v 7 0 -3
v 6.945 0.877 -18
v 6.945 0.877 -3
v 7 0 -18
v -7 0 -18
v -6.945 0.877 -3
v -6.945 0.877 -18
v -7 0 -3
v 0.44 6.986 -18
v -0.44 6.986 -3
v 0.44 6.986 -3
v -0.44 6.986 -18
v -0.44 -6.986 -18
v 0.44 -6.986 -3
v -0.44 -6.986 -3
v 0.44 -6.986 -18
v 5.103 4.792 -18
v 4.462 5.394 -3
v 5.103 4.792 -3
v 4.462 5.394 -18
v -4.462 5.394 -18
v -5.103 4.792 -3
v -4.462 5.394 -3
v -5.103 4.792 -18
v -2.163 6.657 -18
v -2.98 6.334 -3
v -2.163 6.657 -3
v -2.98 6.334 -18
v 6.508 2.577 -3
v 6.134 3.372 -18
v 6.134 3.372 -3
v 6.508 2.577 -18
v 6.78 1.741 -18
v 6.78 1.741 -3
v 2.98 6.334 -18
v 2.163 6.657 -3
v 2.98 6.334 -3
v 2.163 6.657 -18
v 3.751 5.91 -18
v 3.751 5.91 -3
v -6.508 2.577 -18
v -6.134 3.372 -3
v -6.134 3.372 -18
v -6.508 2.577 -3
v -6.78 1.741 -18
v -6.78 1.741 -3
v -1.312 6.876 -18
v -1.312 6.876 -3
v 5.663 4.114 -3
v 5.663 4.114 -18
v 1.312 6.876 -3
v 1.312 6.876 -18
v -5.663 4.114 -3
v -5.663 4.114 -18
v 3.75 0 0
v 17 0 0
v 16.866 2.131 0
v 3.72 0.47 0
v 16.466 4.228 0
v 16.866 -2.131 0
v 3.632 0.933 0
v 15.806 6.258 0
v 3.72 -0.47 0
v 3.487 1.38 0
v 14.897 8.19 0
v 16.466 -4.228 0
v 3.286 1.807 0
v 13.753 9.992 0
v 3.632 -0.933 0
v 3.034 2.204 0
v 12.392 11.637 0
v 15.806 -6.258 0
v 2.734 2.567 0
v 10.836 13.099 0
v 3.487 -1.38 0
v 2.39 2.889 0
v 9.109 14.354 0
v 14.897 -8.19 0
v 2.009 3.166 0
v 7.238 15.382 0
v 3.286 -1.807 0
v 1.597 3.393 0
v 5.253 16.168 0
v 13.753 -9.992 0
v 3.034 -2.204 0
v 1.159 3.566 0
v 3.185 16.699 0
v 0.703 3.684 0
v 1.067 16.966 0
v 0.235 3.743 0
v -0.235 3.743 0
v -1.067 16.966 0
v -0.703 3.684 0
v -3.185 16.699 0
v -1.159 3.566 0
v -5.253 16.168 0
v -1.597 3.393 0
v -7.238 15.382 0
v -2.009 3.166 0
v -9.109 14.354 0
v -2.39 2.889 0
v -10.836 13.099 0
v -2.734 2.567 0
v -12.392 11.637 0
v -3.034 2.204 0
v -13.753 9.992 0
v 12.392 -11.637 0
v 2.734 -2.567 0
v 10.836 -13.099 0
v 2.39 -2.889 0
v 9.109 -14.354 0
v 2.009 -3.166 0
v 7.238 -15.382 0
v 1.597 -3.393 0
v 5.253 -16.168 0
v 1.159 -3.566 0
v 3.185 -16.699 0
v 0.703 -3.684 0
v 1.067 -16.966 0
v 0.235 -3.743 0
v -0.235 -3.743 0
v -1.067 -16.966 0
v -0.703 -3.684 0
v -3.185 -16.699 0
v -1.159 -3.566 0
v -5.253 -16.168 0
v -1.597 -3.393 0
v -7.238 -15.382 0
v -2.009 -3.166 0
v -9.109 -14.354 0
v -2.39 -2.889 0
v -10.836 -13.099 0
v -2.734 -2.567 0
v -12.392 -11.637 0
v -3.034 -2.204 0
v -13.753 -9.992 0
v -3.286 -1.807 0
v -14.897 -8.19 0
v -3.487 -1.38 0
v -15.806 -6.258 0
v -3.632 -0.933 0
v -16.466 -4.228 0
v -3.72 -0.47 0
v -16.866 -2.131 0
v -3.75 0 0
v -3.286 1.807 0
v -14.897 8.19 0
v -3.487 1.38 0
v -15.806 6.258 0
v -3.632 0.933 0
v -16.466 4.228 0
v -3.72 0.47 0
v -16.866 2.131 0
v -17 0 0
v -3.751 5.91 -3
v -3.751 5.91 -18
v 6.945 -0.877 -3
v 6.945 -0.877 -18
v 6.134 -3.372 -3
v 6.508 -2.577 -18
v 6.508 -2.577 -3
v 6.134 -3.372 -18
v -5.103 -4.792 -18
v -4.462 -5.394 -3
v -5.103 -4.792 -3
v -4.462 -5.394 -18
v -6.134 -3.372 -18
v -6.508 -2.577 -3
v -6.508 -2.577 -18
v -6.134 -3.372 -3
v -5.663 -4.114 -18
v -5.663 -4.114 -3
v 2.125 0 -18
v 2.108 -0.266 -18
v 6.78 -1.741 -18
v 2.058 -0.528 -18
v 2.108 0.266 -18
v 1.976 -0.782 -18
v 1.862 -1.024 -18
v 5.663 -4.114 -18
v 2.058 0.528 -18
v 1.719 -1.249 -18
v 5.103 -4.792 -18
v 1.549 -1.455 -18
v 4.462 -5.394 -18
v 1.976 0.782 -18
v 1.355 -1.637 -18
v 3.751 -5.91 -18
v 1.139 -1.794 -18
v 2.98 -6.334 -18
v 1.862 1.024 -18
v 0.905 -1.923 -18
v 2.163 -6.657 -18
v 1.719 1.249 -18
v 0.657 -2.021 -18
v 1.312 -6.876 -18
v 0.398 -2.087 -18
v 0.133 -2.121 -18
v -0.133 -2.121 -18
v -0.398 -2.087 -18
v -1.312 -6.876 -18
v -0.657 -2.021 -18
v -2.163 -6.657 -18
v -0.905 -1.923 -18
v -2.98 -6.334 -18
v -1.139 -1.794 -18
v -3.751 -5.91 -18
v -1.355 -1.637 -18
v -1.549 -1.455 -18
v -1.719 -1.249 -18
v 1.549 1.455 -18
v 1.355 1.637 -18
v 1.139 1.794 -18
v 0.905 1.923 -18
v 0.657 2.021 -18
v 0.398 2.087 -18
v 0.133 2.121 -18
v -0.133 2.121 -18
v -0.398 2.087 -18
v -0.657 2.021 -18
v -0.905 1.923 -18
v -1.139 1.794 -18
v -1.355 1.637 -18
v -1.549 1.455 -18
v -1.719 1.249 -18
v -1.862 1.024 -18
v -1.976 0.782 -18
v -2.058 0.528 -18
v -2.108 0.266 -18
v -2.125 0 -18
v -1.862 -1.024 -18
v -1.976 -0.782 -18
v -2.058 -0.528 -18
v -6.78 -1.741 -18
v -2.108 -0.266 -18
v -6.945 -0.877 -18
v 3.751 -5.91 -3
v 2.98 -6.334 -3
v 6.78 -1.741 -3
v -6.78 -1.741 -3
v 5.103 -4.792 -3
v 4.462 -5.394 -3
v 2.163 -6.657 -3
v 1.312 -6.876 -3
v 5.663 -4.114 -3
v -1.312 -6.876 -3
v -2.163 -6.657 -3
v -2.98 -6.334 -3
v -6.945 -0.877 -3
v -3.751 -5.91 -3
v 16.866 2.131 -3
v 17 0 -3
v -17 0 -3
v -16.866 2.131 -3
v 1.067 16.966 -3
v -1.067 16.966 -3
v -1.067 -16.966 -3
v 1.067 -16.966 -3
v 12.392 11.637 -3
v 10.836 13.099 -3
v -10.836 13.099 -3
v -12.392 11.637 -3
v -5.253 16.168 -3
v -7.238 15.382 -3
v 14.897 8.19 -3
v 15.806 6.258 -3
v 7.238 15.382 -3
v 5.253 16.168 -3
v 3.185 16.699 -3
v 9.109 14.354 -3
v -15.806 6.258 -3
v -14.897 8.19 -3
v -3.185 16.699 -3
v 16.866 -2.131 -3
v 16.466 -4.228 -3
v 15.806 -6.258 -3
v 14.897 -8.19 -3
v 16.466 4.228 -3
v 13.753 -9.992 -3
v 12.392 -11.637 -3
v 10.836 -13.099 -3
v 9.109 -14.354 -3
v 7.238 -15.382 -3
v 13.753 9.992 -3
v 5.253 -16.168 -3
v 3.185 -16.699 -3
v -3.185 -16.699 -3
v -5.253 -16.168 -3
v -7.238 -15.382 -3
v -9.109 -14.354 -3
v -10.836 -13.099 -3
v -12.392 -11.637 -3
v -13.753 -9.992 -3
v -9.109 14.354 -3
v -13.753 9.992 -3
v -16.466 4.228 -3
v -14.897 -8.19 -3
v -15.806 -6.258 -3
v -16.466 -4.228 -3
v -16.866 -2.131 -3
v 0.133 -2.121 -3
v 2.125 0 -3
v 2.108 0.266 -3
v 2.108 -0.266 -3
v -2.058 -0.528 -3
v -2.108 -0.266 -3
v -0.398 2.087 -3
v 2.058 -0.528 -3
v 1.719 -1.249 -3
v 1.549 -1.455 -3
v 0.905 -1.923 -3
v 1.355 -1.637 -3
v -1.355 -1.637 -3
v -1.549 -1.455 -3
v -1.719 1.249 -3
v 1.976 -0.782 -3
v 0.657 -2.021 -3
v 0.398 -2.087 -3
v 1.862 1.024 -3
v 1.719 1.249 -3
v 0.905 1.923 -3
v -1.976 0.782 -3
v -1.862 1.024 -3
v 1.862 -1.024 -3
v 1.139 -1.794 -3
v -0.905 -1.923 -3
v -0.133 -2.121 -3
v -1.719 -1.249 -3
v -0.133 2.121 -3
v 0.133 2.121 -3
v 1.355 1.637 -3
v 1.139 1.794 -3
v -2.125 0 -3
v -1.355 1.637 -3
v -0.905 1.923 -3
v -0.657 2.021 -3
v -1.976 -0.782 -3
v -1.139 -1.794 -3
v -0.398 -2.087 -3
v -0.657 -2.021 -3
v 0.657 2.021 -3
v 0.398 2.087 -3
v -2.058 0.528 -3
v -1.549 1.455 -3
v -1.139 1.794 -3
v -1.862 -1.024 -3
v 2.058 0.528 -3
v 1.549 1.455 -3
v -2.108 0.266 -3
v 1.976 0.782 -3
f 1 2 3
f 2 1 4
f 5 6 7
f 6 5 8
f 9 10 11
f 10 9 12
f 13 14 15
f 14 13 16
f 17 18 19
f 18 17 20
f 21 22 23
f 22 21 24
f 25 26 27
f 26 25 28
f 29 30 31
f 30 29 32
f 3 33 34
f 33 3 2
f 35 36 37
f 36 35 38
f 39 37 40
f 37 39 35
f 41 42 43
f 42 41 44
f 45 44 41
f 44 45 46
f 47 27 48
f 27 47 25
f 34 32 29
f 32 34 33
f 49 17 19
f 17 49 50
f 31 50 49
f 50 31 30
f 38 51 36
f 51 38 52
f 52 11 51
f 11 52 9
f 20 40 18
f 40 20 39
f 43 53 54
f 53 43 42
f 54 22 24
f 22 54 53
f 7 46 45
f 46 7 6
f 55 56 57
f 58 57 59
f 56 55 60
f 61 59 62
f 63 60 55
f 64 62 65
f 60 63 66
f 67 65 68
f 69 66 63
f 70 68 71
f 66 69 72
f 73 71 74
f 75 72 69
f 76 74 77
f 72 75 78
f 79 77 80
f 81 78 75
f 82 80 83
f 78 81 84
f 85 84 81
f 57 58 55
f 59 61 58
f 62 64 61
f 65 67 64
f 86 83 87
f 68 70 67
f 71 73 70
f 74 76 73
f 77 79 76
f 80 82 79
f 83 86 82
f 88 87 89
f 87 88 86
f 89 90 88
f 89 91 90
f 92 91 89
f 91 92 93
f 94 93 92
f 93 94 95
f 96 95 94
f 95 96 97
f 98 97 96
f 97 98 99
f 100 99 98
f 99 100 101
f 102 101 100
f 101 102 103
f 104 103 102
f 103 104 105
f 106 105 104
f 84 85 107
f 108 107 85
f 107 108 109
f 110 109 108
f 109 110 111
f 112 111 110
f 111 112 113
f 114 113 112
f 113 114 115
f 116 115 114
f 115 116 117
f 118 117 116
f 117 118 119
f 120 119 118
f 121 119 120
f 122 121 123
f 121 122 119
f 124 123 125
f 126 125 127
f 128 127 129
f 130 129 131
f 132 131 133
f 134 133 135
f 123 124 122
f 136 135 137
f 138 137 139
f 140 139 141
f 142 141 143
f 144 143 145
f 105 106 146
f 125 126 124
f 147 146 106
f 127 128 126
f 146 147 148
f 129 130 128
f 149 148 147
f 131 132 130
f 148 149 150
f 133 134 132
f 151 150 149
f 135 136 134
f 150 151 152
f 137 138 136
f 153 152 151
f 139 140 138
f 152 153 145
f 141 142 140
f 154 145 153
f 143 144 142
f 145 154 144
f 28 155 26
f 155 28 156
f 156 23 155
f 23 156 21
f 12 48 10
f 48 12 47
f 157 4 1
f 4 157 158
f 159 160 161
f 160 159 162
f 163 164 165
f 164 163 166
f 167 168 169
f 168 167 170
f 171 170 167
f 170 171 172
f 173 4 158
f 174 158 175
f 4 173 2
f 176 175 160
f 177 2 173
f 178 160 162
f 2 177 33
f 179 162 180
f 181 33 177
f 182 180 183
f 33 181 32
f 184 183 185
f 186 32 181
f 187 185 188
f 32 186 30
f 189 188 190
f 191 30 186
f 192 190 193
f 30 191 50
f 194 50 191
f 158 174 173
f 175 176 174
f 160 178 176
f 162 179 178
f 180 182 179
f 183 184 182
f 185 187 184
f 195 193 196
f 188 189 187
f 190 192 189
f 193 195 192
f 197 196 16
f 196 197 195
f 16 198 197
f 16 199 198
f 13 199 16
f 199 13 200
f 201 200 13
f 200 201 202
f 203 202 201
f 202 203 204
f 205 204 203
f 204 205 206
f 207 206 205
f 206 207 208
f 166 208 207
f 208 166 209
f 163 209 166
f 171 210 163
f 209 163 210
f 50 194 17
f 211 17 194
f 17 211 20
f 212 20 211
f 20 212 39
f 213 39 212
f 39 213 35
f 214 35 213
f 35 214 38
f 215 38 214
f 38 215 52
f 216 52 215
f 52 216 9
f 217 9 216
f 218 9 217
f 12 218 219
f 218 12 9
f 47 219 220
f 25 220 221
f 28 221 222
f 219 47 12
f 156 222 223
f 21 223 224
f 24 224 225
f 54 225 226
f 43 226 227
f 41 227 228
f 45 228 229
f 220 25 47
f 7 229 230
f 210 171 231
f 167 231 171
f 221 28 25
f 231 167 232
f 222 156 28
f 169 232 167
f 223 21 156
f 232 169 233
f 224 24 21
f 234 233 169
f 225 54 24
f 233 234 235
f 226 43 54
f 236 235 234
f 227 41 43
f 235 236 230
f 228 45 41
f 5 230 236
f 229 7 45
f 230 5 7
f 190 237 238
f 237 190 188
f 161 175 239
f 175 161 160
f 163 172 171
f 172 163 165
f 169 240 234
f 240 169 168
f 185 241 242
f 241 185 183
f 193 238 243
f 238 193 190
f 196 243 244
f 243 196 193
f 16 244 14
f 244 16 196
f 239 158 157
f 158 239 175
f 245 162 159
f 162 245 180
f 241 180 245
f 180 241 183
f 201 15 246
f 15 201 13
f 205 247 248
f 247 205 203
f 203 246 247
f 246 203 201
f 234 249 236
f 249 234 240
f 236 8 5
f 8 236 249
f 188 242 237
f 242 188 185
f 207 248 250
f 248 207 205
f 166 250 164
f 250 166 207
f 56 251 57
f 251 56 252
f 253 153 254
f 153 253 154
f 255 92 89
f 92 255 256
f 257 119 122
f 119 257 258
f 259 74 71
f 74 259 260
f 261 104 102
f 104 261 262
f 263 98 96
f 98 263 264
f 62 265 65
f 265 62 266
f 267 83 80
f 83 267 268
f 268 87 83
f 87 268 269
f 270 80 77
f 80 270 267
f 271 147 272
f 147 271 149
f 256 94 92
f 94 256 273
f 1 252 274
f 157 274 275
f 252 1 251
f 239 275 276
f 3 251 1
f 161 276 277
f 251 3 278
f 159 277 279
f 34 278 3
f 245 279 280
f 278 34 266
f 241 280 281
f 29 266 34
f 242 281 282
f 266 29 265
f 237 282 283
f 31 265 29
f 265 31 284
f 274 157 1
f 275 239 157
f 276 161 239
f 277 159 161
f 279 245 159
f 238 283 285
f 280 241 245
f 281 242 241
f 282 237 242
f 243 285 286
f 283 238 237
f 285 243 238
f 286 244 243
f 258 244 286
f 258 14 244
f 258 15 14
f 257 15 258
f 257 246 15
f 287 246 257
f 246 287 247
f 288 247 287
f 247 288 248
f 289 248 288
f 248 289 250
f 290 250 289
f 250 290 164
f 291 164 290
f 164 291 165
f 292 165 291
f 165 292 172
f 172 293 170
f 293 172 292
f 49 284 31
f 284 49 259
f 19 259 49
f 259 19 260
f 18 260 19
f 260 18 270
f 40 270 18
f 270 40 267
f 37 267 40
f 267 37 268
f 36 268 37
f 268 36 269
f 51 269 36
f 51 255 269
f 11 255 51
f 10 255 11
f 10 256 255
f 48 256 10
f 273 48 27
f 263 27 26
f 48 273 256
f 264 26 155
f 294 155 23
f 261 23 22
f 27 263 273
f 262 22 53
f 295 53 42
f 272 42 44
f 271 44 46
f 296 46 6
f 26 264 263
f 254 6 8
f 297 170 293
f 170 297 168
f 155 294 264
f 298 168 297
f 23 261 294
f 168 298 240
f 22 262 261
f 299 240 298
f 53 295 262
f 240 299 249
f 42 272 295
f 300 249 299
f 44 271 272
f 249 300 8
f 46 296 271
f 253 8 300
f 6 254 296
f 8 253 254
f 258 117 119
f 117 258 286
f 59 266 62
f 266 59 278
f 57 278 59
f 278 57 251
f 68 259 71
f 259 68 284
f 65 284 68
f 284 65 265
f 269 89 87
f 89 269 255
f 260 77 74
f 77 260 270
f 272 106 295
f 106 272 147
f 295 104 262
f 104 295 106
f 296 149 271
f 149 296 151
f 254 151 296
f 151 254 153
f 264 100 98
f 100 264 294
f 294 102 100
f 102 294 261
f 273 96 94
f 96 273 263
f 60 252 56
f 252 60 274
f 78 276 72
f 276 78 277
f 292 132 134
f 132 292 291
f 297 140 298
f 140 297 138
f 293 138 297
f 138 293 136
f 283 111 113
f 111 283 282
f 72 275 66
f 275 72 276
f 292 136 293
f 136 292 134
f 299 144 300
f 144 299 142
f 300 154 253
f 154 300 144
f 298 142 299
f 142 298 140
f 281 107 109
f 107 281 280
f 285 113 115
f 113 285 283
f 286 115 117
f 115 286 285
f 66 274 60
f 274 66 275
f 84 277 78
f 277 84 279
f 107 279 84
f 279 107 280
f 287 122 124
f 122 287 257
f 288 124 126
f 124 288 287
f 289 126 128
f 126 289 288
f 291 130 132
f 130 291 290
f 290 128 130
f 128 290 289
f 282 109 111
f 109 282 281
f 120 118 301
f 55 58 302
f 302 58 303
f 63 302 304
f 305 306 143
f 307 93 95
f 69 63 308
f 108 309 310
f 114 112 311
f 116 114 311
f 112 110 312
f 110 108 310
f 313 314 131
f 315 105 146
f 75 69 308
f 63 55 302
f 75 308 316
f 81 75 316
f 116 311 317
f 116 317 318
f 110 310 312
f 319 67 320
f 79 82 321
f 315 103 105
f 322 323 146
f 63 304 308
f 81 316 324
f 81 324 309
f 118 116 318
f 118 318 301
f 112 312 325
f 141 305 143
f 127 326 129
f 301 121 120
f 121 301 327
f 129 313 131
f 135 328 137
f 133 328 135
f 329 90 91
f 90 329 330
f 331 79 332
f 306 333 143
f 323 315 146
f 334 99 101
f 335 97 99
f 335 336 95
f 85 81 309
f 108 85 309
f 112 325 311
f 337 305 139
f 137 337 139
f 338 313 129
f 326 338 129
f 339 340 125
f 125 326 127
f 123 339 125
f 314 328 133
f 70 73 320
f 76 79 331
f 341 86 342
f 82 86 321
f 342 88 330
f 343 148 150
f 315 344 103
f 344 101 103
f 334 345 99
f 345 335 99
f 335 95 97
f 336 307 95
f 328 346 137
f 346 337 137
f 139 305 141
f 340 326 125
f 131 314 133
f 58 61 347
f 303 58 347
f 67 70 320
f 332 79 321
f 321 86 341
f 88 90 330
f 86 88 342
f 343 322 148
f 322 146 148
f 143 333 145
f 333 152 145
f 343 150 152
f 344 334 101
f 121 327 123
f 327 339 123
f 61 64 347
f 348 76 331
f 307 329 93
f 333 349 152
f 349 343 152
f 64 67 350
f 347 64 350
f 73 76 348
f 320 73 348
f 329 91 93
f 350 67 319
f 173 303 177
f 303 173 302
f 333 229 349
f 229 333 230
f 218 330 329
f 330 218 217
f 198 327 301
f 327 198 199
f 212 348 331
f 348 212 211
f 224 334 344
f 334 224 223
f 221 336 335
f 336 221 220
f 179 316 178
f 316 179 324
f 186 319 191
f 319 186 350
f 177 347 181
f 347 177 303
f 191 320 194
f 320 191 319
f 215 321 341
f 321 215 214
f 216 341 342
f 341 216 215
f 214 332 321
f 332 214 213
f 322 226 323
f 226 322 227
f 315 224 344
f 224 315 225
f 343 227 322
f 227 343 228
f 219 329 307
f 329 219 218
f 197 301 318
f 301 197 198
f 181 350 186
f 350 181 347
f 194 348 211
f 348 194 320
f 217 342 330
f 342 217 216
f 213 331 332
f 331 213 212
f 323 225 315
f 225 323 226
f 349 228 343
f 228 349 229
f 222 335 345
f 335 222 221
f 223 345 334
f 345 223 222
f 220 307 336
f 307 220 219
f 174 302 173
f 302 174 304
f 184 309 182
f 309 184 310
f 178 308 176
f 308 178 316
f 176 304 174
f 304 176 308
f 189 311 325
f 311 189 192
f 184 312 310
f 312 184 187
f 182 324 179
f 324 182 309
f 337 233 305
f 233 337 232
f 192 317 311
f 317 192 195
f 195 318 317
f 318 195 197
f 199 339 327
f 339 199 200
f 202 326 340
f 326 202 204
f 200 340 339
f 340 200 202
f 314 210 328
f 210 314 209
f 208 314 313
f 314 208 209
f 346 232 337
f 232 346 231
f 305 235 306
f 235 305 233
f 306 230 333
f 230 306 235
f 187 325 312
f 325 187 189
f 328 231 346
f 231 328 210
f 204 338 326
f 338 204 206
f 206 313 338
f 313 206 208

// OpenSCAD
$fn = 50;


difference() {
	union() {
		translate(v = [0, 0, -18.0000000000]) {
			cylinder(h = 18, r = 7.0000000000);
		}
		translate(v = [0, 0, -3.0000000000]) {
			cylinder(h = 3, r = 17.0000000000);
		}
	}
	union() {
		translate(v = [0, 0, 0]) {
			rotate(a = [0, 0, 0]) {
				difference() {
					union() {
						#translate(v = [0, 0, -18.0000000000]) {
							cylinder(h = 18, r = 2.0000000000);
						}
						#translate(v = [0, 0, -3]) {
							cylinder(h = 3, r1 = 2.1250000000, r2 = 3.7500000000);
						}
						#translate(v = [0, 0, -18.0000000000]) {
							cylinder(h = 18, r = 2.1250000000);
						}
						#translate(v = [0, 0, -18.0000000000]) {
							cylinder(h = 18, r = 2.0000000000);
						}
					}
					union();
				}
			}
		}
	}
}
